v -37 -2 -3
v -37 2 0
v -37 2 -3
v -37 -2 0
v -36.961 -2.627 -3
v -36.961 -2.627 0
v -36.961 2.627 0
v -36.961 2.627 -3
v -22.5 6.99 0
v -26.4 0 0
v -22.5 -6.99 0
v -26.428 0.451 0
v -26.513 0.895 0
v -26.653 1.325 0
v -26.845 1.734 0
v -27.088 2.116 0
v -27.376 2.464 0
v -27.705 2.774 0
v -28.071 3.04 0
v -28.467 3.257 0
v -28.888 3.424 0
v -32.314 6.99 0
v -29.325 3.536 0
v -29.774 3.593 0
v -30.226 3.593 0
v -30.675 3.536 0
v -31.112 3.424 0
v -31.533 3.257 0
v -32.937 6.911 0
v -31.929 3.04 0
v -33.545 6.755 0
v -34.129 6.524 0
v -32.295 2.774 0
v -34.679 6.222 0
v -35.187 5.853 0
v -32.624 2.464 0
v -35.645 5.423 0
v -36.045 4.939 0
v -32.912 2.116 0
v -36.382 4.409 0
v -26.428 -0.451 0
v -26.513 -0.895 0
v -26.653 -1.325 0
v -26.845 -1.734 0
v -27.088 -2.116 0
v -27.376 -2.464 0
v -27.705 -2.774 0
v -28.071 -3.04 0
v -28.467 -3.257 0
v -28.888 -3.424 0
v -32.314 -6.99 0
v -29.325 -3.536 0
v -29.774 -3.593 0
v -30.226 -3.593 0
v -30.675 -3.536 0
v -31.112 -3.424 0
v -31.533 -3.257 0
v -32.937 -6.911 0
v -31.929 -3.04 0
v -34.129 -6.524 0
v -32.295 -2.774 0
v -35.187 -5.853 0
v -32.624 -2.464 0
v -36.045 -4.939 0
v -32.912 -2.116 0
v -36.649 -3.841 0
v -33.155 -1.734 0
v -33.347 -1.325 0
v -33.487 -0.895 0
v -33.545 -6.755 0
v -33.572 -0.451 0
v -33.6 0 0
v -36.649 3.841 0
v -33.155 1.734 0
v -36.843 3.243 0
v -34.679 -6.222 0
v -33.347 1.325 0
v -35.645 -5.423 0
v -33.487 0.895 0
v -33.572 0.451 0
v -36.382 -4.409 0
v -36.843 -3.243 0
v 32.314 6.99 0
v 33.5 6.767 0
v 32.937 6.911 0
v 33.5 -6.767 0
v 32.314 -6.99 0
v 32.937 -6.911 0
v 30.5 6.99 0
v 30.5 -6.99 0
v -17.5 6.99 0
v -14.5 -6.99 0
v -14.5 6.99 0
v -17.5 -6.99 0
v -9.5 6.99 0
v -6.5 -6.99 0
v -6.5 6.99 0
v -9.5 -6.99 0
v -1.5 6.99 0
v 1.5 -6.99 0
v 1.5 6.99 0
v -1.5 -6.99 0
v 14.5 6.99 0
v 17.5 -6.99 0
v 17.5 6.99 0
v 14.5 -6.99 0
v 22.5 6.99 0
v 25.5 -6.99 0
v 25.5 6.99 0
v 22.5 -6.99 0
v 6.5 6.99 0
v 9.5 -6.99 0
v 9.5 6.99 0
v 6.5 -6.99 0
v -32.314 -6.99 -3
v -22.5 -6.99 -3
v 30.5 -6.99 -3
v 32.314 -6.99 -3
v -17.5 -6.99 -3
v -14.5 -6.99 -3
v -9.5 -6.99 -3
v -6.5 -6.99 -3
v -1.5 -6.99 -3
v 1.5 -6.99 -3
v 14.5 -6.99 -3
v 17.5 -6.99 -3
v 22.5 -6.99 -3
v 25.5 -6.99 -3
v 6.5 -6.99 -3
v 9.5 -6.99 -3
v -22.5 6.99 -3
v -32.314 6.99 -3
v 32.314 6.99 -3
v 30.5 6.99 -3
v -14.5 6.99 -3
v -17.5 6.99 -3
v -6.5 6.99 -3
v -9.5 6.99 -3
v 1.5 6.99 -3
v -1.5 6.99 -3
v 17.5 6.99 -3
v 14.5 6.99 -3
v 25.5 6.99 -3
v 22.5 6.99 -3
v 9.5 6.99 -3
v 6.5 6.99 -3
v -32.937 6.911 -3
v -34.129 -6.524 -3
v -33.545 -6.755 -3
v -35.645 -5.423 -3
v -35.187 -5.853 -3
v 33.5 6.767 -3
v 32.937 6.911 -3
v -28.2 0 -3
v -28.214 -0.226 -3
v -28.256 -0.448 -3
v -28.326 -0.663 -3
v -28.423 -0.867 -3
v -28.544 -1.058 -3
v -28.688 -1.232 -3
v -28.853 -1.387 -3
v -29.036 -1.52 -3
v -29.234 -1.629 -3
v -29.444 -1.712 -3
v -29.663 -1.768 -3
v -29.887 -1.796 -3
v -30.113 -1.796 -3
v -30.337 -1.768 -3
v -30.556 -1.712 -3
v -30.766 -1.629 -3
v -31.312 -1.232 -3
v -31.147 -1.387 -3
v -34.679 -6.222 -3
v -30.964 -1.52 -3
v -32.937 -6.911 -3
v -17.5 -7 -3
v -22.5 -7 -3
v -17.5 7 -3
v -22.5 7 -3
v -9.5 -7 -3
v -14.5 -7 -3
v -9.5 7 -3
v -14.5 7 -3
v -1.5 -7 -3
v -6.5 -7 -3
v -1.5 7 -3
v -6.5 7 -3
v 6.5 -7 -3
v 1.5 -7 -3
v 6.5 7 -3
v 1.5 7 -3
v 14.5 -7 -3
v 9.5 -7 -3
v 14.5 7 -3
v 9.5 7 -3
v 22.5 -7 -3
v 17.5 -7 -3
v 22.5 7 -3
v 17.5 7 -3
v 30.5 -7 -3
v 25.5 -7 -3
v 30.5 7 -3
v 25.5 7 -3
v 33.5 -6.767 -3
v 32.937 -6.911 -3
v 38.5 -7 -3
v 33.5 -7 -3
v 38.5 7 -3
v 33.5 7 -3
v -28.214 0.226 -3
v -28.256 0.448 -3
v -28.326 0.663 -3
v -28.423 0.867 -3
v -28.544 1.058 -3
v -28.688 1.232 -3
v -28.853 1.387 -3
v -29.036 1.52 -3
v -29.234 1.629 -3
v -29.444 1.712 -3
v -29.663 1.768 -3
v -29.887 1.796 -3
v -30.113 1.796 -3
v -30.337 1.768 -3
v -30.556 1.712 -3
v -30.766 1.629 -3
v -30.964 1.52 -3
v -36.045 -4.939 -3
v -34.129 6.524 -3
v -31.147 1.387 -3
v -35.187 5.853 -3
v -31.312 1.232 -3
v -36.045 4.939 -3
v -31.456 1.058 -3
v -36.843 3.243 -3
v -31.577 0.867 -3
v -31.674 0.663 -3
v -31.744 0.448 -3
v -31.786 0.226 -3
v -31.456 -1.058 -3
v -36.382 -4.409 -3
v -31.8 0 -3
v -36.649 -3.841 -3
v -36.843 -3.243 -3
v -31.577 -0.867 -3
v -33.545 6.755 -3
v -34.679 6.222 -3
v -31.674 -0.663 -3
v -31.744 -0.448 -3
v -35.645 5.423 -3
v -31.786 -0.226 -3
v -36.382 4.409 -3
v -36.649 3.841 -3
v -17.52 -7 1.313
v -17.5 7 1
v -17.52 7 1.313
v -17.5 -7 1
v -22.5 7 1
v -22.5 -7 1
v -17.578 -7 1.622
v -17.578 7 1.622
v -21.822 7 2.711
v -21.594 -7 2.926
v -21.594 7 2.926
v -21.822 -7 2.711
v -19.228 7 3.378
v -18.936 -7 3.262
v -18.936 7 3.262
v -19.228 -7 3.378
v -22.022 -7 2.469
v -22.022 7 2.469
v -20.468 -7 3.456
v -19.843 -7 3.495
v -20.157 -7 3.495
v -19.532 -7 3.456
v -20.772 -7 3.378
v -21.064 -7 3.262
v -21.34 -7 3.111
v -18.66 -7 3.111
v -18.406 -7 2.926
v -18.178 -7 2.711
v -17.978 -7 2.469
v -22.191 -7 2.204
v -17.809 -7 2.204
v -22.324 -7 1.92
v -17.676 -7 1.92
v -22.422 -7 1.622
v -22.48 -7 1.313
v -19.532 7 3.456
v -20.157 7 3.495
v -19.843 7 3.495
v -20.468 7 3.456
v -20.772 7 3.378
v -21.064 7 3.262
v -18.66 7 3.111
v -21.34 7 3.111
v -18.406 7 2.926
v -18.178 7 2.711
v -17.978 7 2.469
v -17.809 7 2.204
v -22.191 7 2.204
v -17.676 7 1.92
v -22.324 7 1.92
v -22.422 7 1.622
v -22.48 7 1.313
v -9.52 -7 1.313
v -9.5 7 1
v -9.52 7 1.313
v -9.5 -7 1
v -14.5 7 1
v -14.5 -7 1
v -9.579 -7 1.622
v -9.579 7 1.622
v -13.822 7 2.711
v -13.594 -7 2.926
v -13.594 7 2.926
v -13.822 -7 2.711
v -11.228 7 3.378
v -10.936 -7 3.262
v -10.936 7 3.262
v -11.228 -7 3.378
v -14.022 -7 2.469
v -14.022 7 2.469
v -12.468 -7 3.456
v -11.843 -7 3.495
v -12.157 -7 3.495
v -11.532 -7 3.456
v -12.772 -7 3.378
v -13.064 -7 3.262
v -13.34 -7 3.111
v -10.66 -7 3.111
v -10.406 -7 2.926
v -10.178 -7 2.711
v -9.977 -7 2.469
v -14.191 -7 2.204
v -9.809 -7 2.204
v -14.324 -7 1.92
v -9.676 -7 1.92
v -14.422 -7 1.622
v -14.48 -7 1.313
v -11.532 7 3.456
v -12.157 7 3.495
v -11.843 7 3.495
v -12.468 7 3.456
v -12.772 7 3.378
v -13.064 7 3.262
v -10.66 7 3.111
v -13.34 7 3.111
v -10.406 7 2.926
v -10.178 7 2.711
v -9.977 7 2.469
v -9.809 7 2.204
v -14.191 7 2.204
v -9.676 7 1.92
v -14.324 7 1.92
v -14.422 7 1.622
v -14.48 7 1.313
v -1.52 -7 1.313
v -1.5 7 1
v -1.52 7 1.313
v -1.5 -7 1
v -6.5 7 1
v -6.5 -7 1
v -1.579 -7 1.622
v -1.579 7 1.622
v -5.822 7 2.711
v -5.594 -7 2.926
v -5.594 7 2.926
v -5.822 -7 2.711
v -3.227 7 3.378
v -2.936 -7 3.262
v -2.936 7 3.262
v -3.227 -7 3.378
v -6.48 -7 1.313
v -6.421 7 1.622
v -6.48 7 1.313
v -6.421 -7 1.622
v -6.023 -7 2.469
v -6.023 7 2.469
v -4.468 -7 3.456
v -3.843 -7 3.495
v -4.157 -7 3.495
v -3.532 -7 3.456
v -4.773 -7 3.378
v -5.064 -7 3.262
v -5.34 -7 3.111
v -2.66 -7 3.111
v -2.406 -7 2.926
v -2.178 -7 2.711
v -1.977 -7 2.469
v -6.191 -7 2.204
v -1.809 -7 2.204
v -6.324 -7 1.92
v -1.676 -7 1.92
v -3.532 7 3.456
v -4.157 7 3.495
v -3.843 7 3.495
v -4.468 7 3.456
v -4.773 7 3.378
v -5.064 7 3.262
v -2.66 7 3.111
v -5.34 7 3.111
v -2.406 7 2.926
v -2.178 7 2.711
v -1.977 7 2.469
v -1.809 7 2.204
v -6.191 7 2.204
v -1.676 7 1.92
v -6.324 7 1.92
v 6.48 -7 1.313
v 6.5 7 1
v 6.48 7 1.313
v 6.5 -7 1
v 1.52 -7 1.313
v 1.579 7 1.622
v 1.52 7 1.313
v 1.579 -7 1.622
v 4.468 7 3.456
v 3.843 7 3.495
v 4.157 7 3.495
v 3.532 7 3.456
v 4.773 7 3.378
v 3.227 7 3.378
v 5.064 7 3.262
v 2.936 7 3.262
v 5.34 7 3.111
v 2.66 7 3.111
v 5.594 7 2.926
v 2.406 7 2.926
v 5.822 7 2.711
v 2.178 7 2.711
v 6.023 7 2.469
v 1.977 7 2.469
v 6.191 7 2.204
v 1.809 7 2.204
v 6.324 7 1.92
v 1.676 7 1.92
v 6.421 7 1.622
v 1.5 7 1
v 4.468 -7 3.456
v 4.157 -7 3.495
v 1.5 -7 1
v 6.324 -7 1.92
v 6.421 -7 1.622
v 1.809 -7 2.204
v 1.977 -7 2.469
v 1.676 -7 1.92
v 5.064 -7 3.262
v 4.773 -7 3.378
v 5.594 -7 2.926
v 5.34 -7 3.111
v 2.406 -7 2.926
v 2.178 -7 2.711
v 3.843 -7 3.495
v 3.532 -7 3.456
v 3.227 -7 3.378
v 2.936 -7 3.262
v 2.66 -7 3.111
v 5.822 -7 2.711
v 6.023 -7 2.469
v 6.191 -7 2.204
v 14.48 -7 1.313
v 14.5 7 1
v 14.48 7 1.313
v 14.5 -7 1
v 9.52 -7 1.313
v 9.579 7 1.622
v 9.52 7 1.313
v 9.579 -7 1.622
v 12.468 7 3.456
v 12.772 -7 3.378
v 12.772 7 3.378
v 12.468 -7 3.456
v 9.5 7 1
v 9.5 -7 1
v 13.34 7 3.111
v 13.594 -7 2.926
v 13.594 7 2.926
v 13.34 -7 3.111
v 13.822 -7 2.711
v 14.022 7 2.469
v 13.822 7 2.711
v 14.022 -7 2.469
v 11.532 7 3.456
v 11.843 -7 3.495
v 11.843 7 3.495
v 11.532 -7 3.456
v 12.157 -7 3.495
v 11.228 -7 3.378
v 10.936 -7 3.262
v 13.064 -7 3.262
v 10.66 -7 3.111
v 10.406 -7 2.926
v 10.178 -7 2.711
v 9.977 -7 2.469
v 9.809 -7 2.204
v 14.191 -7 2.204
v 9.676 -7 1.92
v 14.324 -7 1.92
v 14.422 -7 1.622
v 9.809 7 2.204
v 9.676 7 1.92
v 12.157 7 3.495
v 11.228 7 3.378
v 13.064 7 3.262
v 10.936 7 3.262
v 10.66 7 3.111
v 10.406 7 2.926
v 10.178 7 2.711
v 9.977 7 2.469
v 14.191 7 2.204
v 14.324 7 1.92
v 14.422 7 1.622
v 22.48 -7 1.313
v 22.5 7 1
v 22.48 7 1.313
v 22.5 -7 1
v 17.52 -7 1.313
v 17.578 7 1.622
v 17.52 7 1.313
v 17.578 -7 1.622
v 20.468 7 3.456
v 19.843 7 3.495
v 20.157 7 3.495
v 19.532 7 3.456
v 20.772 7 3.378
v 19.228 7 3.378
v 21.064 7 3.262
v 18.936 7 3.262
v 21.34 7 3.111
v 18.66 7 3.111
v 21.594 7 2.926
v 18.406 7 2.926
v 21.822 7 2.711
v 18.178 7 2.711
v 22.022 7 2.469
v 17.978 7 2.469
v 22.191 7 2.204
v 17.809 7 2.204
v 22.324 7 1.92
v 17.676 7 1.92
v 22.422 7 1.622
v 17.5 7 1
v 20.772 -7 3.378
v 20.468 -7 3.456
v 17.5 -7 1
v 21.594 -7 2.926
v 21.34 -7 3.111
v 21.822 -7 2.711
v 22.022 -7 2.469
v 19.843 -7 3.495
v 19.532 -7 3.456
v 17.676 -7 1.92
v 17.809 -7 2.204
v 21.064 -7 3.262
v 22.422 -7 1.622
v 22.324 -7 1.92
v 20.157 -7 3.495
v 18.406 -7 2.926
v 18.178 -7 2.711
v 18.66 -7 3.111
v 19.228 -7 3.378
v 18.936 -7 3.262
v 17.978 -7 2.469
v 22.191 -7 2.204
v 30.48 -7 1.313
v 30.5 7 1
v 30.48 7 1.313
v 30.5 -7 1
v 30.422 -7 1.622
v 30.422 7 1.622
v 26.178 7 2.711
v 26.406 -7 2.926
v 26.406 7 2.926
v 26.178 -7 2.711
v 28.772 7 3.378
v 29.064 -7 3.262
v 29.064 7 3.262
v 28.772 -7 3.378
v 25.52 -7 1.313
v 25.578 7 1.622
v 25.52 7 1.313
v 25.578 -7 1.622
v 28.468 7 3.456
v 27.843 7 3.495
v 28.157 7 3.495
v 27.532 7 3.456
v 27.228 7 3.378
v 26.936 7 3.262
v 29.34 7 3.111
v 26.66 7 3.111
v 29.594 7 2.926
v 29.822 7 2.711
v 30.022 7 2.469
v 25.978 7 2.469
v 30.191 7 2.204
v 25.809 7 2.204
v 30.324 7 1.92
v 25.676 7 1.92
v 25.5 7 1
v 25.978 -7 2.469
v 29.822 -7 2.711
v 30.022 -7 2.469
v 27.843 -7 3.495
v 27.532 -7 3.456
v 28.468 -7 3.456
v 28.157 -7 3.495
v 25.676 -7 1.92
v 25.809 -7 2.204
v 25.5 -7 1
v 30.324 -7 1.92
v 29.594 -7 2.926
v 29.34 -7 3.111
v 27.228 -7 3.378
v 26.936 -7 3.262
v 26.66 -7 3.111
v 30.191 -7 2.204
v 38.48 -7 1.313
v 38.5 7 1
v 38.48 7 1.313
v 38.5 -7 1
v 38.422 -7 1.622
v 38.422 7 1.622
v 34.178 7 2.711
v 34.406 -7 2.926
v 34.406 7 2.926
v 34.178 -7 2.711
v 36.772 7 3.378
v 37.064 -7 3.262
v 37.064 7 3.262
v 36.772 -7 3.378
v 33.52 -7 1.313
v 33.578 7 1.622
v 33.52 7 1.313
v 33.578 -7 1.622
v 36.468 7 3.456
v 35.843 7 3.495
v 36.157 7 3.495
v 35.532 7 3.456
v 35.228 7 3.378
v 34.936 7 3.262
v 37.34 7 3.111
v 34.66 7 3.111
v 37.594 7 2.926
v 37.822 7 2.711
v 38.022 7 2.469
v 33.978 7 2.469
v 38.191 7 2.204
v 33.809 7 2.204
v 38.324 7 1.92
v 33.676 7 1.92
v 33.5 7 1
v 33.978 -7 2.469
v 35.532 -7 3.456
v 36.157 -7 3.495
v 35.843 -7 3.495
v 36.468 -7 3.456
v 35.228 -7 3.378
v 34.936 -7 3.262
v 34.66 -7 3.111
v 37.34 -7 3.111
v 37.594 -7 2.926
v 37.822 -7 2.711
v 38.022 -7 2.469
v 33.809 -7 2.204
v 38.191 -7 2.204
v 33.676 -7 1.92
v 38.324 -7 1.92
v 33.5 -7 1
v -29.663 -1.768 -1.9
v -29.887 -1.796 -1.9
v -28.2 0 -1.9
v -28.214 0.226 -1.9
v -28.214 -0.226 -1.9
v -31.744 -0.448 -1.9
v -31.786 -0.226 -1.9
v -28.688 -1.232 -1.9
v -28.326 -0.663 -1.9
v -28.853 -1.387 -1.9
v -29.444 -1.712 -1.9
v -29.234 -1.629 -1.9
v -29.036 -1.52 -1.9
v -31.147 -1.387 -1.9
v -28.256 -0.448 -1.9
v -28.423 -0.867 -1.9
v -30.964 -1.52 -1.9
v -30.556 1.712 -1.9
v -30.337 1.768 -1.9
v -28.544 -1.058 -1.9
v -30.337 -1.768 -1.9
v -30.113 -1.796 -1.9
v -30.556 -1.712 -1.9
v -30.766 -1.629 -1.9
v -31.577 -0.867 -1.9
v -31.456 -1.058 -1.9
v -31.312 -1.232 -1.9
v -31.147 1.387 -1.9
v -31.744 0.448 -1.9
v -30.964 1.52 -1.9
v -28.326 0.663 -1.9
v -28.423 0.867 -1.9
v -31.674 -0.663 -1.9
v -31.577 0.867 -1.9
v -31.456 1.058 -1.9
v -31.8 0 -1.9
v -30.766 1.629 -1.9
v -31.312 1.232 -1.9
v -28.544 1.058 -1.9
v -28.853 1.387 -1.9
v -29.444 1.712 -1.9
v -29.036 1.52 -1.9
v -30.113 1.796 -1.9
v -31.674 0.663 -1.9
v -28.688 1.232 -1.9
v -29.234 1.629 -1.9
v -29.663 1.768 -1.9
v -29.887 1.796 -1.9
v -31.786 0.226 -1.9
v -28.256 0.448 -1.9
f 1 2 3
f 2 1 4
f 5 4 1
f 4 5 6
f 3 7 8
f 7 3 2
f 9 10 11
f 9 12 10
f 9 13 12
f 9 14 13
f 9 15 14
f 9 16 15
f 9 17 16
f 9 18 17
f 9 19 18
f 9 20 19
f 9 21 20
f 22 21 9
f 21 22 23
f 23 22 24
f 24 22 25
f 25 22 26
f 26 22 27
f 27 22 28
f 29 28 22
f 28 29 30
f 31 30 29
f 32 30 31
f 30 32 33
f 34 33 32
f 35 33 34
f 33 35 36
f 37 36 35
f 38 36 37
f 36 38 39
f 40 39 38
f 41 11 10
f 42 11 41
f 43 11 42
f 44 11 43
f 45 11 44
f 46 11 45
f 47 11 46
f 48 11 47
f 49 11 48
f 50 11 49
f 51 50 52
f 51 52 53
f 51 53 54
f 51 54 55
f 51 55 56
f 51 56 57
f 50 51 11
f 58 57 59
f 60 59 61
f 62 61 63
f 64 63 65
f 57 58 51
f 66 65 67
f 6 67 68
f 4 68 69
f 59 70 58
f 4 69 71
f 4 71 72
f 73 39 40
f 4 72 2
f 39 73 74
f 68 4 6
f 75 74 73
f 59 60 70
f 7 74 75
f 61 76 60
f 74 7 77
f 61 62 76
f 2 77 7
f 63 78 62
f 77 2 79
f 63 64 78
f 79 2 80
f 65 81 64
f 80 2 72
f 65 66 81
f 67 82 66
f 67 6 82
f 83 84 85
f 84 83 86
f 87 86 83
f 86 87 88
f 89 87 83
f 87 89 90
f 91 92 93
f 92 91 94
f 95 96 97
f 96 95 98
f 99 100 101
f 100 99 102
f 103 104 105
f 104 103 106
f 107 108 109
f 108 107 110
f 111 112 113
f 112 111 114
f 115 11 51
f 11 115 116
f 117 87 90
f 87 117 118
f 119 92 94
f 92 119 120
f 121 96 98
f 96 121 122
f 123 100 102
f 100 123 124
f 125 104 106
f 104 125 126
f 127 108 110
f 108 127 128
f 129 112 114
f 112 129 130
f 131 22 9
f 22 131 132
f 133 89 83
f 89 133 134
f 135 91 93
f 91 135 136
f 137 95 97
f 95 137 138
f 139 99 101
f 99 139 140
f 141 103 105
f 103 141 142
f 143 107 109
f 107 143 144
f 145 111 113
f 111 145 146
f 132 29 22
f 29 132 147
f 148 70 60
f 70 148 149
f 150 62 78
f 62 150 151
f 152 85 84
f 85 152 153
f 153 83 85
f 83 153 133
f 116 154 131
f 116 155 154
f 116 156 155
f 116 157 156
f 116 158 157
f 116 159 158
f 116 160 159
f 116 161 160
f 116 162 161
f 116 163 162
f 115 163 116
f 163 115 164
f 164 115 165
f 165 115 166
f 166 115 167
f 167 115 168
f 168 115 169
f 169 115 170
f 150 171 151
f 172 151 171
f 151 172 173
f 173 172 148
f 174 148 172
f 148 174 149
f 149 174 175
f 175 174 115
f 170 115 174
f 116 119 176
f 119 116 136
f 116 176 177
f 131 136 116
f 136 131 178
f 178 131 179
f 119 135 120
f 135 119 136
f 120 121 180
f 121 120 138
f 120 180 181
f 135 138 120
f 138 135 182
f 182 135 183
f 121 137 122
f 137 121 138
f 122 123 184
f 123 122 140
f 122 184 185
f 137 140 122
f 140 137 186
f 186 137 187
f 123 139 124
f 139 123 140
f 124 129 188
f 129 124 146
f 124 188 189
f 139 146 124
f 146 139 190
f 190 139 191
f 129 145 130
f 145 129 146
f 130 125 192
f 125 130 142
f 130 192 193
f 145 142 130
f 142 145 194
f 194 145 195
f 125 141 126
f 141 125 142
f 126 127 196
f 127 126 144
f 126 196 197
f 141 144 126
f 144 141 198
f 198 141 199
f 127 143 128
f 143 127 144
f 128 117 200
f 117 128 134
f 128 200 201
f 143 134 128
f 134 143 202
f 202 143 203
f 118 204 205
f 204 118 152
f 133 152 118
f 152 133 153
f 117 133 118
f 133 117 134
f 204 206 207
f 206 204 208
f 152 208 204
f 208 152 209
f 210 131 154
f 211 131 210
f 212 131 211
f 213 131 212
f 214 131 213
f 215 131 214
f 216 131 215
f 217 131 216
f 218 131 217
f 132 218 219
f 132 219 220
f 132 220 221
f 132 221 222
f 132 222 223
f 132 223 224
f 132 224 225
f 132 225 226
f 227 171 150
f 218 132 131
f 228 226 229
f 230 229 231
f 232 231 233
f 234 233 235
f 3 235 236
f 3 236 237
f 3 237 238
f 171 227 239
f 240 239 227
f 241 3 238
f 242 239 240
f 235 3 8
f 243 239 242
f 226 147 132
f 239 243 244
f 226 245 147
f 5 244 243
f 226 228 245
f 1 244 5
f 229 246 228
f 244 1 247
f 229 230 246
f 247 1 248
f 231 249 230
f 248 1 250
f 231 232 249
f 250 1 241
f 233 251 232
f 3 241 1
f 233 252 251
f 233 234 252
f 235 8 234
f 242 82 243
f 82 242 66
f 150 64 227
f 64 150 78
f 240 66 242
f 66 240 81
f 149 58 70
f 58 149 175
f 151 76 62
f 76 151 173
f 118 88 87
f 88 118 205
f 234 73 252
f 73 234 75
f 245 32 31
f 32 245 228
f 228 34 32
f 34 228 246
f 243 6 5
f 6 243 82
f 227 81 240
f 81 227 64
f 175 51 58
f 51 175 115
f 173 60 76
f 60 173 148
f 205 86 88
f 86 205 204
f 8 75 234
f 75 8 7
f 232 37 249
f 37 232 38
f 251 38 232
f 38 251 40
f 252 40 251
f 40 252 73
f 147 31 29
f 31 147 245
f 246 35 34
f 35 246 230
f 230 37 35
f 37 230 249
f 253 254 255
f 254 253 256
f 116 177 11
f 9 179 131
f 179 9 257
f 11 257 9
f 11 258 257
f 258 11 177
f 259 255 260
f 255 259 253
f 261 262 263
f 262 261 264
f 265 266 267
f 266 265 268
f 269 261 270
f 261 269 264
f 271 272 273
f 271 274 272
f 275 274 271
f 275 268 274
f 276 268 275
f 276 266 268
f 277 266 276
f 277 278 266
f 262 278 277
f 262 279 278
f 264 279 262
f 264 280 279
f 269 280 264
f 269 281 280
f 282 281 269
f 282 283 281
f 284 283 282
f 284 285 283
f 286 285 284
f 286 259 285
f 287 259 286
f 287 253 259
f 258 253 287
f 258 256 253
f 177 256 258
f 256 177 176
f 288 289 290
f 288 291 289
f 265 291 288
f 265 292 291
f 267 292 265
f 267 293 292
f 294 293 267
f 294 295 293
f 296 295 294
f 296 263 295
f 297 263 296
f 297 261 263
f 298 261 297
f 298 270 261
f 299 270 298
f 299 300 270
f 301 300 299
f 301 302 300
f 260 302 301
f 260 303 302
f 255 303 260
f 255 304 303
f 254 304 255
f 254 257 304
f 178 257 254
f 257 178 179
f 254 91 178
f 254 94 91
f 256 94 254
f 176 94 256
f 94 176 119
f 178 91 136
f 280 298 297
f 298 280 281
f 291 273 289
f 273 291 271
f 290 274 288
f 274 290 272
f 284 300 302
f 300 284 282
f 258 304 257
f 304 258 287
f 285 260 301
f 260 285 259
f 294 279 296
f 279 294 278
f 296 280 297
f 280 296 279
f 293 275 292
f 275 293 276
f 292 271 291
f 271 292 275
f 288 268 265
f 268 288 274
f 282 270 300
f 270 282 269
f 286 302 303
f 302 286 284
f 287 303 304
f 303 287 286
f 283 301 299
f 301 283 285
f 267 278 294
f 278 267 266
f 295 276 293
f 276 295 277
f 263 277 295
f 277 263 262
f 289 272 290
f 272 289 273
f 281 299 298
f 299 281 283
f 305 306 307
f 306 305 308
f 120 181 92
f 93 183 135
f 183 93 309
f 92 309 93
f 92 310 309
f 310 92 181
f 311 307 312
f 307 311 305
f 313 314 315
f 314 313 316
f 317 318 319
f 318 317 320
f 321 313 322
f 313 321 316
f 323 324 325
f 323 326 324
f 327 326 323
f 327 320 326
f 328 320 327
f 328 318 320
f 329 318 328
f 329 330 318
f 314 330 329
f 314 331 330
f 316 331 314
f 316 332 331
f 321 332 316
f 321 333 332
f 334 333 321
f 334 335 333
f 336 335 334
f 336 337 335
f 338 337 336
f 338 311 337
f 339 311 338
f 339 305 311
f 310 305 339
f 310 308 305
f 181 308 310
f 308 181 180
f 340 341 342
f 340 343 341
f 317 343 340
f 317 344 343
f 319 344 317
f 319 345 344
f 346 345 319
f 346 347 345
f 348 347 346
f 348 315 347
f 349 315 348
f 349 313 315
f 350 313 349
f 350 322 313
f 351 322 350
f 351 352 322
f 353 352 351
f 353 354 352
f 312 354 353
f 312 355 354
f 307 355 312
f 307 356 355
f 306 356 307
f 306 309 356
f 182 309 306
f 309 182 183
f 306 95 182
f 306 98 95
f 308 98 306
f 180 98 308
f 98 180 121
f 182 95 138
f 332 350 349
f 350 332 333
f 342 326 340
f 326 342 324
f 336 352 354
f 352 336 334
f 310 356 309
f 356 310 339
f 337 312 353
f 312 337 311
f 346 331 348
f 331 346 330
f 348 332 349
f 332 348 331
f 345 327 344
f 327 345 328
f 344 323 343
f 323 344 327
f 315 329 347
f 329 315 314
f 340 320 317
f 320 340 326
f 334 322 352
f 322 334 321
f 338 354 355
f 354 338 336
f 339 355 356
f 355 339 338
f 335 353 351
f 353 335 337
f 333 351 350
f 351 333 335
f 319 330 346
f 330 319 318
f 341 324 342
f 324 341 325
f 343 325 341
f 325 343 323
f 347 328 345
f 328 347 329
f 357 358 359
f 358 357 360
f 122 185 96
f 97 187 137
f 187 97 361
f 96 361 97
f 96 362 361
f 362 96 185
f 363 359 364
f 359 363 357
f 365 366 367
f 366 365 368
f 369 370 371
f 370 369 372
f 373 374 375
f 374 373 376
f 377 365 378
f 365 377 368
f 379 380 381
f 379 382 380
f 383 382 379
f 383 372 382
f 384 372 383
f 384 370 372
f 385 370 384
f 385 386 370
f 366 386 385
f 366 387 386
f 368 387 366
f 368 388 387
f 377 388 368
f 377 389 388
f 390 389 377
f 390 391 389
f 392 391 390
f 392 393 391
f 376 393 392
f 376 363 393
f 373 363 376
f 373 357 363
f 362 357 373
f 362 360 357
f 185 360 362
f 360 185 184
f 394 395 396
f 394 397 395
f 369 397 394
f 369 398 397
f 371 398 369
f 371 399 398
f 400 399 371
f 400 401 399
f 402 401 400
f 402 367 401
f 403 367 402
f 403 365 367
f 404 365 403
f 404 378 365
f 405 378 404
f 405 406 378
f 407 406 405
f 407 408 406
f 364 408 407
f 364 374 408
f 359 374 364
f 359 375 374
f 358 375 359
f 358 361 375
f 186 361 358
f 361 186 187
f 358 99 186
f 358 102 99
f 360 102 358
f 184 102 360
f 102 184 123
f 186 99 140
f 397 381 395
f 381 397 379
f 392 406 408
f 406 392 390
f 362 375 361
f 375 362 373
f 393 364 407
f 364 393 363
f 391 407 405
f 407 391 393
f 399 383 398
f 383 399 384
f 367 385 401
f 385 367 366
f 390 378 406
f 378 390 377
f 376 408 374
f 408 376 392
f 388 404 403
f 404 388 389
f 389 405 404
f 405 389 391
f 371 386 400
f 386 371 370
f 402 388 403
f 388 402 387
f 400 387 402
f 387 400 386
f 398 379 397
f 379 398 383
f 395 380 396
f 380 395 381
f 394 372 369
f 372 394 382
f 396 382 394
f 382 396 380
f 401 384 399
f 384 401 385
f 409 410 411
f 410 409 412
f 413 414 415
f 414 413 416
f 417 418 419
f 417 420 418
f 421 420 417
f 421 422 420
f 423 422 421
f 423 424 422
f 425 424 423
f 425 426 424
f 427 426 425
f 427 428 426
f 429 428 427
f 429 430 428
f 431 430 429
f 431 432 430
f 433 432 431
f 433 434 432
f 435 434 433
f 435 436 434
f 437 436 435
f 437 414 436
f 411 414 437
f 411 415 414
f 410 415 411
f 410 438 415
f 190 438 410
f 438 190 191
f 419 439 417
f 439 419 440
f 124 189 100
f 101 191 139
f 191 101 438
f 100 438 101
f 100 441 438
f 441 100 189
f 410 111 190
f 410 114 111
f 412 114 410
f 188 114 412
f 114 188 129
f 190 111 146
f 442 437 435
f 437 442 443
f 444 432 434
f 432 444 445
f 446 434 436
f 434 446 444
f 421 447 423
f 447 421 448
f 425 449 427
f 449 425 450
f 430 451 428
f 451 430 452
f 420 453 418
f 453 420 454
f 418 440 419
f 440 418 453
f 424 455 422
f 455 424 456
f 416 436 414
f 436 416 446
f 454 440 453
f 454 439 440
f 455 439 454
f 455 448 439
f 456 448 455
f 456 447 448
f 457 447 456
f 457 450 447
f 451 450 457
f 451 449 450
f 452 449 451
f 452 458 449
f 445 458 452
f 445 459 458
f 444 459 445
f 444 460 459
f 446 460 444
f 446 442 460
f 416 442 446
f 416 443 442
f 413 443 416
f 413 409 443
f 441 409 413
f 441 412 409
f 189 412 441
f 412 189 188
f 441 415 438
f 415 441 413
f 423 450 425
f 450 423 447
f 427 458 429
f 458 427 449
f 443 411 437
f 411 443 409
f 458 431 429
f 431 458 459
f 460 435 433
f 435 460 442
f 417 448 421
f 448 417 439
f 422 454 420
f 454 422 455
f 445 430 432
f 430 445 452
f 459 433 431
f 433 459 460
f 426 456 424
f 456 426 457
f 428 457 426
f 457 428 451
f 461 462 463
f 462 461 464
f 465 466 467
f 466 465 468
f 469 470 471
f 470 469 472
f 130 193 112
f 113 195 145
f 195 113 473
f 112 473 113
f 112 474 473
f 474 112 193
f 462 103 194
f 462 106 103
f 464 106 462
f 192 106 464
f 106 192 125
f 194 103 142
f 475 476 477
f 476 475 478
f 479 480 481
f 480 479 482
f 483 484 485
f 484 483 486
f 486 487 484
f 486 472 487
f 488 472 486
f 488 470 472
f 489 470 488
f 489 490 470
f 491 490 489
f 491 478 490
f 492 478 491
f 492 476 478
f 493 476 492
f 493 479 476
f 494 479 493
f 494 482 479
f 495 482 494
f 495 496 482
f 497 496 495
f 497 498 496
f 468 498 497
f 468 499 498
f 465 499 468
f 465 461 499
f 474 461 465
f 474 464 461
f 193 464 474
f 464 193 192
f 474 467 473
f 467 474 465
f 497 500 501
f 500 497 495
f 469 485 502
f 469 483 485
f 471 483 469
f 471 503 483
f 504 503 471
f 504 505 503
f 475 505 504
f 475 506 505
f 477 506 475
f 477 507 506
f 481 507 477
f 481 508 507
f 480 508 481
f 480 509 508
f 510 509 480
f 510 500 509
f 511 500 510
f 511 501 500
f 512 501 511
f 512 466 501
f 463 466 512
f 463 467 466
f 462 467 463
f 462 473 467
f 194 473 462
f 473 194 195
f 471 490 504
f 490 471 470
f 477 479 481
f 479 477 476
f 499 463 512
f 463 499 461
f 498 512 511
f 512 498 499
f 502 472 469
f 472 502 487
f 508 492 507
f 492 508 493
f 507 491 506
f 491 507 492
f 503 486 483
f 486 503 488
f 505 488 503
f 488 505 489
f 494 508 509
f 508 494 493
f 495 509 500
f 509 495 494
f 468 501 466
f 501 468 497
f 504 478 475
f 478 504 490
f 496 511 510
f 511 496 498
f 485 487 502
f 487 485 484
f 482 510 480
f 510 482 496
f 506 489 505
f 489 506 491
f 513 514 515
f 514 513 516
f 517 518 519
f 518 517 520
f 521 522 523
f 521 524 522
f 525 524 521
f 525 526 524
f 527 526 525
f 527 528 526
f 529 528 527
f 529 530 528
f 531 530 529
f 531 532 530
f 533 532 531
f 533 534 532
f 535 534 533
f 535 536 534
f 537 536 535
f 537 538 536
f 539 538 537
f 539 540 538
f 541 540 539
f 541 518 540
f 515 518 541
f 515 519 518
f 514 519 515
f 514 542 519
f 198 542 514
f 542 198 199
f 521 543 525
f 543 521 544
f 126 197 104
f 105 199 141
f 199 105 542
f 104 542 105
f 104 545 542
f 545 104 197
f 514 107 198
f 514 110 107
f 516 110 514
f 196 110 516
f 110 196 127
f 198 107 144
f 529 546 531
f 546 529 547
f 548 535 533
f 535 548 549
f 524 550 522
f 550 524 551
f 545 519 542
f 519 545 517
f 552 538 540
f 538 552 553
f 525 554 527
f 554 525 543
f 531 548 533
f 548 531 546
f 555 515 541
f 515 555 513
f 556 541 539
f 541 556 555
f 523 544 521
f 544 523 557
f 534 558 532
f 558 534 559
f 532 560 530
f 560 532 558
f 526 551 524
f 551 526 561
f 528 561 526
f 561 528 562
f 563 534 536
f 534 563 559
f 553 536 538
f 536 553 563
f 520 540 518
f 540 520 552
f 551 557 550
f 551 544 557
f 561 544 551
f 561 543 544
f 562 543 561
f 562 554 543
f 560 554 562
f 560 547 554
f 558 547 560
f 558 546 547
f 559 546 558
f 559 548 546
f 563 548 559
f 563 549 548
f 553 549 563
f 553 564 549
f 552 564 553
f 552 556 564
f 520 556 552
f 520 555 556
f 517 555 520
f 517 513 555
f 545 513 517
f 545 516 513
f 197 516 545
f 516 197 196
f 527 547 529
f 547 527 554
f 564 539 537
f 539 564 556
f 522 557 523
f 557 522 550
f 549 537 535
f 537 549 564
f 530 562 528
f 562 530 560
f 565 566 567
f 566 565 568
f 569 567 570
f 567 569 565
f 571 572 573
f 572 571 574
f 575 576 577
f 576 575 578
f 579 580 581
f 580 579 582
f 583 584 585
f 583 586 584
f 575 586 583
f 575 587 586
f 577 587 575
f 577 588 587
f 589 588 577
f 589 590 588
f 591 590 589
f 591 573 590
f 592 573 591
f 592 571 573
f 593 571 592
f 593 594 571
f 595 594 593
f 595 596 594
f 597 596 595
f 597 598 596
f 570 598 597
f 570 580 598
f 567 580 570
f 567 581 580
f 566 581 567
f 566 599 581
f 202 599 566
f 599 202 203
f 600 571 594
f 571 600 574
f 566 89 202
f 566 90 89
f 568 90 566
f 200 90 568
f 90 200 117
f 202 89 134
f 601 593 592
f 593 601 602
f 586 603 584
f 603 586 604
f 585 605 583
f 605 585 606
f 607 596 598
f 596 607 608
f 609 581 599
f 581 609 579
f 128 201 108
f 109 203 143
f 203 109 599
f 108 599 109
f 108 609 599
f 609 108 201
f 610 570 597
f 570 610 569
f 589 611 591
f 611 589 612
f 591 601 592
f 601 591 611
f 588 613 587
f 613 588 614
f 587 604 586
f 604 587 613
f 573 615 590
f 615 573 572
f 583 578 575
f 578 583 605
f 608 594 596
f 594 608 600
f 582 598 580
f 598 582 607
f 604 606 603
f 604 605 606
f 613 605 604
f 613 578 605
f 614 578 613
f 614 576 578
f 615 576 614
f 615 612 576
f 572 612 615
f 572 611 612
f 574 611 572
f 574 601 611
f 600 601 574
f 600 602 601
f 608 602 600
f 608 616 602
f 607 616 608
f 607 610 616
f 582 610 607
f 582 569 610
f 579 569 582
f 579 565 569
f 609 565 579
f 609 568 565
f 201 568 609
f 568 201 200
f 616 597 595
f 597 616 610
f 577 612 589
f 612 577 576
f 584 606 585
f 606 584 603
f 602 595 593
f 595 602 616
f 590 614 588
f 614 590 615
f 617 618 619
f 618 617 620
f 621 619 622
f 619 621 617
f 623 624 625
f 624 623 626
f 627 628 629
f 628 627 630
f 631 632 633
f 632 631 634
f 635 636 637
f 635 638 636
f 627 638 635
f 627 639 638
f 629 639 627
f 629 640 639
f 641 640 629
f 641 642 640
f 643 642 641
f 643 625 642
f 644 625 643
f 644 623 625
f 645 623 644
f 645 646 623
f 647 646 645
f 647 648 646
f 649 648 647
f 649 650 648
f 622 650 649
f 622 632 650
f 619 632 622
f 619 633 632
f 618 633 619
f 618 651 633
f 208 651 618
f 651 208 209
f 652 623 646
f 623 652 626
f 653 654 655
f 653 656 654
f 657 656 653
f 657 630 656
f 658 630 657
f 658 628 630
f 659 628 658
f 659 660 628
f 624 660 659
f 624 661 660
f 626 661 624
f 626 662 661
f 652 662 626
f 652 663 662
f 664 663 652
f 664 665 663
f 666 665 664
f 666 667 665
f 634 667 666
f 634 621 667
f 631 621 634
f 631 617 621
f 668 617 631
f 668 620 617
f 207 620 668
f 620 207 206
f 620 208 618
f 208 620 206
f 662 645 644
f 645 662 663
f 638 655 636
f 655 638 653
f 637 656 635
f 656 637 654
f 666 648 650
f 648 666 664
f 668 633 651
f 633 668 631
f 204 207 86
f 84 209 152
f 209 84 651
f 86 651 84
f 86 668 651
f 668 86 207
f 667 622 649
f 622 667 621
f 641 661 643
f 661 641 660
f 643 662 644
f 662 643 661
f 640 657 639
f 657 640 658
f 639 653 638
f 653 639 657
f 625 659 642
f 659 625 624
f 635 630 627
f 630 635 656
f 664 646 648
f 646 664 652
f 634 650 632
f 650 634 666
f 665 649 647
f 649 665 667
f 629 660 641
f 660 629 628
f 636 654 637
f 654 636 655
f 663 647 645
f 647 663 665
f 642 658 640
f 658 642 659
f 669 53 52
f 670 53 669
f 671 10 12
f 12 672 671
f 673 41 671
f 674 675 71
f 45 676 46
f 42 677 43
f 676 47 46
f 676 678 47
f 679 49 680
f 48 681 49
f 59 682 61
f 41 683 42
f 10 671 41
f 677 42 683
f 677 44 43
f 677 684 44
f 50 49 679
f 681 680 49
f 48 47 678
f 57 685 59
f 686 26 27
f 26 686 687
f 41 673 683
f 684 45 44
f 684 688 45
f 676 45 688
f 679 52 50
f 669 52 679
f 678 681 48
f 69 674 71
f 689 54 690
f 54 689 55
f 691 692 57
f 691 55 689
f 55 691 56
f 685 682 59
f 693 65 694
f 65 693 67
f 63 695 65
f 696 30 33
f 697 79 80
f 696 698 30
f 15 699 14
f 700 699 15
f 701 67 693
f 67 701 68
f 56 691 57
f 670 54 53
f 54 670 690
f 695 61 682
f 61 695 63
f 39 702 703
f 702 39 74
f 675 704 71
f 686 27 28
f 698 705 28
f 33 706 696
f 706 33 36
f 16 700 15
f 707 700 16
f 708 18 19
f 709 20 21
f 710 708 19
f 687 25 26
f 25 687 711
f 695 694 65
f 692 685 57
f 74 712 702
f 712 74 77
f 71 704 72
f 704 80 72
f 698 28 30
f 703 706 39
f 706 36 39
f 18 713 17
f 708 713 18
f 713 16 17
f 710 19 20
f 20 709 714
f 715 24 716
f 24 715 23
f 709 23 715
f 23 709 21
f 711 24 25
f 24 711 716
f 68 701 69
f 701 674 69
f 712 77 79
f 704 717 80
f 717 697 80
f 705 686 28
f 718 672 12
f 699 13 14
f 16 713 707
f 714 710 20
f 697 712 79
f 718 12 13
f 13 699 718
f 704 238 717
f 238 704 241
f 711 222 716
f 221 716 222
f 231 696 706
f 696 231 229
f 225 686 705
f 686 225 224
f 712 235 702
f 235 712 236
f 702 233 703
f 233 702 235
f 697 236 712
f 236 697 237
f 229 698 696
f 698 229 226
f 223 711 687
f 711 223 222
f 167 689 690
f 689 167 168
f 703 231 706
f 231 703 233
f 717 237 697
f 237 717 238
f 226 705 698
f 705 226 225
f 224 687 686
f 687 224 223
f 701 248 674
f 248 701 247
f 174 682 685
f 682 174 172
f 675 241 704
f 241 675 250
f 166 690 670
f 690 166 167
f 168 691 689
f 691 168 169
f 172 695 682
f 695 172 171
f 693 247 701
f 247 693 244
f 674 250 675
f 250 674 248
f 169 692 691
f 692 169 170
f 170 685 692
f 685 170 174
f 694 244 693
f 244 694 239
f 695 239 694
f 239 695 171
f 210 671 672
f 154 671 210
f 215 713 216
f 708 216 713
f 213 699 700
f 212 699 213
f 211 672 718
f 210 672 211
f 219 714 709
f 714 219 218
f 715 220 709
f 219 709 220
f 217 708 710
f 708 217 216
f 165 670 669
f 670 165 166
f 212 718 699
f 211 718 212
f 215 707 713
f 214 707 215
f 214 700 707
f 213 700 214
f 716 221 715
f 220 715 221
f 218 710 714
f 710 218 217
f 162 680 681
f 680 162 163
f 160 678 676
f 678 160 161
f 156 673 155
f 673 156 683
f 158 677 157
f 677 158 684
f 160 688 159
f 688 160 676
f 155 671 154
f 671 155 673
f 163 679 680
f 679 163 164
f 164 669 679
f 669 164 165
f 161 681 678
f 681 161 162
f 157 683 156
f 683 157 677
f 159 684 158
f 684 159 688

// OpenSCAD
$fn = 50;


difference() {
	union() {
		translate(v = [0, 0, -3]) {
			hull() {
				translate(v = [-32.0000000000, 2.0000000000, 0]) {
					cylinder(h = 3, r = 5);
				}
				translate(v = [32.0000000000, 2.0000000000, 0]) {
					cylinder(h = 3, r = 5);
				}
				translate(v = [-32.0000000000, -2.0000000000, 0]) {
					cylinder(h = 3, r = 5);
				}
				translate(v = [32.0000000000, -2.0000000000, 0]) {
					cylinder(h = 3, r = 5);
				}
			}
		}
		translate(v = [-20.0000000000, 7.0000000000, -1.5000000000]) {
			rotate(a = [90, 0, 0]) {
				hull() {
					translate(v = [-0.0000000000, 2.5000000000, 0]) {
						cylinder(h = 14, r = 2.5000000000);
					}
					translate(v = [0.0000000000, 2.5000000000, 0]) {
						cylinder(h = 14, r = 2.5000000000);
					}
					translate(v = [-0.0000000000, -2.5000000000, 0]) {
						cylinder(h = 14, r = 2.5000000000);
					}
					translate(v = [0.0000000000, -2.5000000000, 0]) {
						cylinder(h = 14, r = 2.5000000000);
					}
				}
			}
		}
		translate(v = [-12.0000000000, 7.0000000000, -1.5000000000]) {
			rotate(a = [90, 0, 0]) {
				hull() {
					translate(v = [-0.0000000000, 2.5000000000, 0]) {
						cylinder(h = 14, r = 2.5000000000);
					}
					translate(v = [0.0000000000, 2.5000000000, 0]) {
						cylinder(h = 14, r = 2.5000000000);
					}
					translate(v = [-0.0000000000, -2.5000000000, 0]) {
						cylinder(h = 14, r = 2.5000000000);
					}
					translate(v = [0.0000000000, -2.5000000000, 0]) {
						cylinder(h = 14, r = 2.5000000000);
					}
				}
			}
		}
		translate(v = [-4.0000000000, 7.0000000000, -1.5000000000]) {
			rotate(a = [90, 0, 0]) {
				hull() {
					translate(v = [-0.0000000000, 2.5000000000, 0]) {
						cylinder(h = 14, r = 2.5000000000);
					}
					translate(v = [0.0000000000, 2.5000000000, 0]) {
						cylinder(h = 14, r = 2.5000000000);
					}
					translate(v = [-0.0000000000, -2.5000000000, 0]) {
						cylinder(h = 14, r = 2.5000000000);
					}
					translate(v = [0.0000000000, -2.5000000000, 0]) {
						cylinder(h = 14, r = 2.5000000000);
					}
				}
			}
		}
		translate(v = [4.0000000000, 7.0000000000, -1.5000000000]) {
			rotate(a = [90, 0, 0]) {
				hull() {
					translate(v = [-0.0000000000, 2.5000000000, 0]) {
						cylinder(h = 14, r = 2.5000000000);
					}
					translate(v = [0.0000000000, 2.5000000000, 0]) {
						cylinder(h = 14, r = 2.5000000000);
					}
					translate(v = [-0.0000000000, -2.5000000000, 0]) {
						cylinder(h = 14, r = 2.5000000000);
					}
					translate(v = [0.0000000000, -2.5000000000, 0]) {
						cylinder(h = 14, r = 2.5000000000);
					}
				}
			}
		}
		translate(v = [12.0000000000, 7.0000000000, -1.5000000000]) {
			rotate(a = [90, 0, 0]) {
				hull() {
					translate(v = [-0.0000000000, 2.5000000000, 0]) {
						cylinder(h = 14, r = 2.5000000000);
					}
					translate(v = [0.0000000000, 2.5000000000, 0]) {
						cylinder(h = 14, r = 2.5000000000);
					}
					translate(v = [-0.0000000000, -2.5000000000, 0]) {
						cylinder(h = 14, r = 2.5000000000);
					}
					translate(v = [0.0000000000, -2.5000000000, 0]) {
						cylinder(h = 14, r = 2.5000000000);
					}
				}
			}
		}
		translate(v = [20.0000000000, 7.0000000000, -1.5000000000]) {
			rotate(a = [90, 0, 0]) {
				hull() {
					translate(v = [-0.0000000000, 2.5000000000, 0]) {
						cylinder(h = 14, r = 2.5000000000);
					}
					translate(v = [0.0000000000, 2.5000000000, 0]) {
						cylinder(h = 14, r = 2.5000000000);
					}
					translate(v = [-0.0000000000, -2.5000000000, 0]) {
						cylinder(h = 14, r = 2.5000000000);
					}
					translate(v = [0.0000000000, -2.5000000000, 0]) {
						cylinder(h = 14, r = 2.5000000000);
					}
				}
			}
		}
		translate(v = [28.0000000000, 7.0000000000, -1.5000000000]) {
			rotate(a = [90, 0, 0]) {
				hull() {
					translate(v = [-0.0000000000, 2.5000000000, 0]) {
						cylinder(h = 14, r = 2.5000000000);
					}
					translate(v = [0.0000000000, 2.5000000000, 0]) {
						cylinder(h = 14, r = 2.5000000000);
					}
					translate(v = [-0.0000000000, -2.5000000000, 0]) {
						cylinder(h = 14, r = 2.5000000000);
					}
					translate(v = [0.0000000000, -2.5000000000, 0]) {
						cylinder(h = 14, r = 2.5000000000);
					}
				}
			}
		}
		translate(v = [36.0000000000, 7.0000000000, -1.5000000000]) {
			rotate(a = [90, 0, 0]) {
				hull() {
					translate(v = [-0.0000000000, 2.5000000000, 0]) {
						cylinder(h = 14, r = 2.5000000000);
					}
					translate(v = [0.0000000000, 2.5000000000, 0]) {
						cylinder(h = 14, r = 2.5000000000);
					}
					translate(v = [-0.0000000000, -2.5000000000, 0]) {
						cylinder(h = 14, r = 2.5000000000);
					}
					translate(v = [0.0000000000, -2.5000000000, 0]) {
						cylinder(h = 14, r = 2.5000000000);
					}
				}
			}
		}
	}
	union() {
		translate(v = [-30.0000000000, 0.0000000000, 0]) {
			rotate(a = [0, 0, 0]) {
				difference() {
					union() {
						translate(v = [0, 0, -3.0000000000]) {
							cylinder(h = 3, r = 1.5000000000);
						}
						translate(v = [0, 0, -1.9000000000]) {
							cylinder(h = 1.9000000000, r1 = 1.8000000000, r2 = 3.6000000000);
						}
						translate(v = [0, 0, -3.0000000000]) {
							cylinder(h = 3, r = 1.8000000000);
						}
						translate(v = [0, 0, -3.0000000000]) {
							cylinder(h = 3, r = 1.5000000000);
						}
					}
					union();
				}
			}
		}
		translate(v = [-250.0000000000, -250.0000000000, -503]) {
			cube(size = [500, 500, 500]);
		}
		translate(v = [-250.0000000000, -250.0000000000, -503]) {
			cube(size = [500, 500, 500]);
		}
		translate(v = [-250.0000000000, -250.0000000000, -503]) {
			cube(size = [500, 500, 500]);
		}
		translate(v = [-30.0000000000, 0.0000000000, -100.0000000000]) {
			cylinder(h = 200, r = 1.8000000000);
		}
		translate(v = [-30.0000000000, 0.0000000000, -100.0000000000]) {
			cylinder(h = 200, r = 1.8000000000);
		}
		translate(v = [-30.0000000000, 0.0000000000, -100.0000000000]) {
			cylinder(h = 200, r = 1.8000000000);
		}
		translate(v = [-30.0000000000, 0.0000000000, -100.0000000000]) {
			cylinder(h = 200, r = 1.8000000000);
		}
	}
}
